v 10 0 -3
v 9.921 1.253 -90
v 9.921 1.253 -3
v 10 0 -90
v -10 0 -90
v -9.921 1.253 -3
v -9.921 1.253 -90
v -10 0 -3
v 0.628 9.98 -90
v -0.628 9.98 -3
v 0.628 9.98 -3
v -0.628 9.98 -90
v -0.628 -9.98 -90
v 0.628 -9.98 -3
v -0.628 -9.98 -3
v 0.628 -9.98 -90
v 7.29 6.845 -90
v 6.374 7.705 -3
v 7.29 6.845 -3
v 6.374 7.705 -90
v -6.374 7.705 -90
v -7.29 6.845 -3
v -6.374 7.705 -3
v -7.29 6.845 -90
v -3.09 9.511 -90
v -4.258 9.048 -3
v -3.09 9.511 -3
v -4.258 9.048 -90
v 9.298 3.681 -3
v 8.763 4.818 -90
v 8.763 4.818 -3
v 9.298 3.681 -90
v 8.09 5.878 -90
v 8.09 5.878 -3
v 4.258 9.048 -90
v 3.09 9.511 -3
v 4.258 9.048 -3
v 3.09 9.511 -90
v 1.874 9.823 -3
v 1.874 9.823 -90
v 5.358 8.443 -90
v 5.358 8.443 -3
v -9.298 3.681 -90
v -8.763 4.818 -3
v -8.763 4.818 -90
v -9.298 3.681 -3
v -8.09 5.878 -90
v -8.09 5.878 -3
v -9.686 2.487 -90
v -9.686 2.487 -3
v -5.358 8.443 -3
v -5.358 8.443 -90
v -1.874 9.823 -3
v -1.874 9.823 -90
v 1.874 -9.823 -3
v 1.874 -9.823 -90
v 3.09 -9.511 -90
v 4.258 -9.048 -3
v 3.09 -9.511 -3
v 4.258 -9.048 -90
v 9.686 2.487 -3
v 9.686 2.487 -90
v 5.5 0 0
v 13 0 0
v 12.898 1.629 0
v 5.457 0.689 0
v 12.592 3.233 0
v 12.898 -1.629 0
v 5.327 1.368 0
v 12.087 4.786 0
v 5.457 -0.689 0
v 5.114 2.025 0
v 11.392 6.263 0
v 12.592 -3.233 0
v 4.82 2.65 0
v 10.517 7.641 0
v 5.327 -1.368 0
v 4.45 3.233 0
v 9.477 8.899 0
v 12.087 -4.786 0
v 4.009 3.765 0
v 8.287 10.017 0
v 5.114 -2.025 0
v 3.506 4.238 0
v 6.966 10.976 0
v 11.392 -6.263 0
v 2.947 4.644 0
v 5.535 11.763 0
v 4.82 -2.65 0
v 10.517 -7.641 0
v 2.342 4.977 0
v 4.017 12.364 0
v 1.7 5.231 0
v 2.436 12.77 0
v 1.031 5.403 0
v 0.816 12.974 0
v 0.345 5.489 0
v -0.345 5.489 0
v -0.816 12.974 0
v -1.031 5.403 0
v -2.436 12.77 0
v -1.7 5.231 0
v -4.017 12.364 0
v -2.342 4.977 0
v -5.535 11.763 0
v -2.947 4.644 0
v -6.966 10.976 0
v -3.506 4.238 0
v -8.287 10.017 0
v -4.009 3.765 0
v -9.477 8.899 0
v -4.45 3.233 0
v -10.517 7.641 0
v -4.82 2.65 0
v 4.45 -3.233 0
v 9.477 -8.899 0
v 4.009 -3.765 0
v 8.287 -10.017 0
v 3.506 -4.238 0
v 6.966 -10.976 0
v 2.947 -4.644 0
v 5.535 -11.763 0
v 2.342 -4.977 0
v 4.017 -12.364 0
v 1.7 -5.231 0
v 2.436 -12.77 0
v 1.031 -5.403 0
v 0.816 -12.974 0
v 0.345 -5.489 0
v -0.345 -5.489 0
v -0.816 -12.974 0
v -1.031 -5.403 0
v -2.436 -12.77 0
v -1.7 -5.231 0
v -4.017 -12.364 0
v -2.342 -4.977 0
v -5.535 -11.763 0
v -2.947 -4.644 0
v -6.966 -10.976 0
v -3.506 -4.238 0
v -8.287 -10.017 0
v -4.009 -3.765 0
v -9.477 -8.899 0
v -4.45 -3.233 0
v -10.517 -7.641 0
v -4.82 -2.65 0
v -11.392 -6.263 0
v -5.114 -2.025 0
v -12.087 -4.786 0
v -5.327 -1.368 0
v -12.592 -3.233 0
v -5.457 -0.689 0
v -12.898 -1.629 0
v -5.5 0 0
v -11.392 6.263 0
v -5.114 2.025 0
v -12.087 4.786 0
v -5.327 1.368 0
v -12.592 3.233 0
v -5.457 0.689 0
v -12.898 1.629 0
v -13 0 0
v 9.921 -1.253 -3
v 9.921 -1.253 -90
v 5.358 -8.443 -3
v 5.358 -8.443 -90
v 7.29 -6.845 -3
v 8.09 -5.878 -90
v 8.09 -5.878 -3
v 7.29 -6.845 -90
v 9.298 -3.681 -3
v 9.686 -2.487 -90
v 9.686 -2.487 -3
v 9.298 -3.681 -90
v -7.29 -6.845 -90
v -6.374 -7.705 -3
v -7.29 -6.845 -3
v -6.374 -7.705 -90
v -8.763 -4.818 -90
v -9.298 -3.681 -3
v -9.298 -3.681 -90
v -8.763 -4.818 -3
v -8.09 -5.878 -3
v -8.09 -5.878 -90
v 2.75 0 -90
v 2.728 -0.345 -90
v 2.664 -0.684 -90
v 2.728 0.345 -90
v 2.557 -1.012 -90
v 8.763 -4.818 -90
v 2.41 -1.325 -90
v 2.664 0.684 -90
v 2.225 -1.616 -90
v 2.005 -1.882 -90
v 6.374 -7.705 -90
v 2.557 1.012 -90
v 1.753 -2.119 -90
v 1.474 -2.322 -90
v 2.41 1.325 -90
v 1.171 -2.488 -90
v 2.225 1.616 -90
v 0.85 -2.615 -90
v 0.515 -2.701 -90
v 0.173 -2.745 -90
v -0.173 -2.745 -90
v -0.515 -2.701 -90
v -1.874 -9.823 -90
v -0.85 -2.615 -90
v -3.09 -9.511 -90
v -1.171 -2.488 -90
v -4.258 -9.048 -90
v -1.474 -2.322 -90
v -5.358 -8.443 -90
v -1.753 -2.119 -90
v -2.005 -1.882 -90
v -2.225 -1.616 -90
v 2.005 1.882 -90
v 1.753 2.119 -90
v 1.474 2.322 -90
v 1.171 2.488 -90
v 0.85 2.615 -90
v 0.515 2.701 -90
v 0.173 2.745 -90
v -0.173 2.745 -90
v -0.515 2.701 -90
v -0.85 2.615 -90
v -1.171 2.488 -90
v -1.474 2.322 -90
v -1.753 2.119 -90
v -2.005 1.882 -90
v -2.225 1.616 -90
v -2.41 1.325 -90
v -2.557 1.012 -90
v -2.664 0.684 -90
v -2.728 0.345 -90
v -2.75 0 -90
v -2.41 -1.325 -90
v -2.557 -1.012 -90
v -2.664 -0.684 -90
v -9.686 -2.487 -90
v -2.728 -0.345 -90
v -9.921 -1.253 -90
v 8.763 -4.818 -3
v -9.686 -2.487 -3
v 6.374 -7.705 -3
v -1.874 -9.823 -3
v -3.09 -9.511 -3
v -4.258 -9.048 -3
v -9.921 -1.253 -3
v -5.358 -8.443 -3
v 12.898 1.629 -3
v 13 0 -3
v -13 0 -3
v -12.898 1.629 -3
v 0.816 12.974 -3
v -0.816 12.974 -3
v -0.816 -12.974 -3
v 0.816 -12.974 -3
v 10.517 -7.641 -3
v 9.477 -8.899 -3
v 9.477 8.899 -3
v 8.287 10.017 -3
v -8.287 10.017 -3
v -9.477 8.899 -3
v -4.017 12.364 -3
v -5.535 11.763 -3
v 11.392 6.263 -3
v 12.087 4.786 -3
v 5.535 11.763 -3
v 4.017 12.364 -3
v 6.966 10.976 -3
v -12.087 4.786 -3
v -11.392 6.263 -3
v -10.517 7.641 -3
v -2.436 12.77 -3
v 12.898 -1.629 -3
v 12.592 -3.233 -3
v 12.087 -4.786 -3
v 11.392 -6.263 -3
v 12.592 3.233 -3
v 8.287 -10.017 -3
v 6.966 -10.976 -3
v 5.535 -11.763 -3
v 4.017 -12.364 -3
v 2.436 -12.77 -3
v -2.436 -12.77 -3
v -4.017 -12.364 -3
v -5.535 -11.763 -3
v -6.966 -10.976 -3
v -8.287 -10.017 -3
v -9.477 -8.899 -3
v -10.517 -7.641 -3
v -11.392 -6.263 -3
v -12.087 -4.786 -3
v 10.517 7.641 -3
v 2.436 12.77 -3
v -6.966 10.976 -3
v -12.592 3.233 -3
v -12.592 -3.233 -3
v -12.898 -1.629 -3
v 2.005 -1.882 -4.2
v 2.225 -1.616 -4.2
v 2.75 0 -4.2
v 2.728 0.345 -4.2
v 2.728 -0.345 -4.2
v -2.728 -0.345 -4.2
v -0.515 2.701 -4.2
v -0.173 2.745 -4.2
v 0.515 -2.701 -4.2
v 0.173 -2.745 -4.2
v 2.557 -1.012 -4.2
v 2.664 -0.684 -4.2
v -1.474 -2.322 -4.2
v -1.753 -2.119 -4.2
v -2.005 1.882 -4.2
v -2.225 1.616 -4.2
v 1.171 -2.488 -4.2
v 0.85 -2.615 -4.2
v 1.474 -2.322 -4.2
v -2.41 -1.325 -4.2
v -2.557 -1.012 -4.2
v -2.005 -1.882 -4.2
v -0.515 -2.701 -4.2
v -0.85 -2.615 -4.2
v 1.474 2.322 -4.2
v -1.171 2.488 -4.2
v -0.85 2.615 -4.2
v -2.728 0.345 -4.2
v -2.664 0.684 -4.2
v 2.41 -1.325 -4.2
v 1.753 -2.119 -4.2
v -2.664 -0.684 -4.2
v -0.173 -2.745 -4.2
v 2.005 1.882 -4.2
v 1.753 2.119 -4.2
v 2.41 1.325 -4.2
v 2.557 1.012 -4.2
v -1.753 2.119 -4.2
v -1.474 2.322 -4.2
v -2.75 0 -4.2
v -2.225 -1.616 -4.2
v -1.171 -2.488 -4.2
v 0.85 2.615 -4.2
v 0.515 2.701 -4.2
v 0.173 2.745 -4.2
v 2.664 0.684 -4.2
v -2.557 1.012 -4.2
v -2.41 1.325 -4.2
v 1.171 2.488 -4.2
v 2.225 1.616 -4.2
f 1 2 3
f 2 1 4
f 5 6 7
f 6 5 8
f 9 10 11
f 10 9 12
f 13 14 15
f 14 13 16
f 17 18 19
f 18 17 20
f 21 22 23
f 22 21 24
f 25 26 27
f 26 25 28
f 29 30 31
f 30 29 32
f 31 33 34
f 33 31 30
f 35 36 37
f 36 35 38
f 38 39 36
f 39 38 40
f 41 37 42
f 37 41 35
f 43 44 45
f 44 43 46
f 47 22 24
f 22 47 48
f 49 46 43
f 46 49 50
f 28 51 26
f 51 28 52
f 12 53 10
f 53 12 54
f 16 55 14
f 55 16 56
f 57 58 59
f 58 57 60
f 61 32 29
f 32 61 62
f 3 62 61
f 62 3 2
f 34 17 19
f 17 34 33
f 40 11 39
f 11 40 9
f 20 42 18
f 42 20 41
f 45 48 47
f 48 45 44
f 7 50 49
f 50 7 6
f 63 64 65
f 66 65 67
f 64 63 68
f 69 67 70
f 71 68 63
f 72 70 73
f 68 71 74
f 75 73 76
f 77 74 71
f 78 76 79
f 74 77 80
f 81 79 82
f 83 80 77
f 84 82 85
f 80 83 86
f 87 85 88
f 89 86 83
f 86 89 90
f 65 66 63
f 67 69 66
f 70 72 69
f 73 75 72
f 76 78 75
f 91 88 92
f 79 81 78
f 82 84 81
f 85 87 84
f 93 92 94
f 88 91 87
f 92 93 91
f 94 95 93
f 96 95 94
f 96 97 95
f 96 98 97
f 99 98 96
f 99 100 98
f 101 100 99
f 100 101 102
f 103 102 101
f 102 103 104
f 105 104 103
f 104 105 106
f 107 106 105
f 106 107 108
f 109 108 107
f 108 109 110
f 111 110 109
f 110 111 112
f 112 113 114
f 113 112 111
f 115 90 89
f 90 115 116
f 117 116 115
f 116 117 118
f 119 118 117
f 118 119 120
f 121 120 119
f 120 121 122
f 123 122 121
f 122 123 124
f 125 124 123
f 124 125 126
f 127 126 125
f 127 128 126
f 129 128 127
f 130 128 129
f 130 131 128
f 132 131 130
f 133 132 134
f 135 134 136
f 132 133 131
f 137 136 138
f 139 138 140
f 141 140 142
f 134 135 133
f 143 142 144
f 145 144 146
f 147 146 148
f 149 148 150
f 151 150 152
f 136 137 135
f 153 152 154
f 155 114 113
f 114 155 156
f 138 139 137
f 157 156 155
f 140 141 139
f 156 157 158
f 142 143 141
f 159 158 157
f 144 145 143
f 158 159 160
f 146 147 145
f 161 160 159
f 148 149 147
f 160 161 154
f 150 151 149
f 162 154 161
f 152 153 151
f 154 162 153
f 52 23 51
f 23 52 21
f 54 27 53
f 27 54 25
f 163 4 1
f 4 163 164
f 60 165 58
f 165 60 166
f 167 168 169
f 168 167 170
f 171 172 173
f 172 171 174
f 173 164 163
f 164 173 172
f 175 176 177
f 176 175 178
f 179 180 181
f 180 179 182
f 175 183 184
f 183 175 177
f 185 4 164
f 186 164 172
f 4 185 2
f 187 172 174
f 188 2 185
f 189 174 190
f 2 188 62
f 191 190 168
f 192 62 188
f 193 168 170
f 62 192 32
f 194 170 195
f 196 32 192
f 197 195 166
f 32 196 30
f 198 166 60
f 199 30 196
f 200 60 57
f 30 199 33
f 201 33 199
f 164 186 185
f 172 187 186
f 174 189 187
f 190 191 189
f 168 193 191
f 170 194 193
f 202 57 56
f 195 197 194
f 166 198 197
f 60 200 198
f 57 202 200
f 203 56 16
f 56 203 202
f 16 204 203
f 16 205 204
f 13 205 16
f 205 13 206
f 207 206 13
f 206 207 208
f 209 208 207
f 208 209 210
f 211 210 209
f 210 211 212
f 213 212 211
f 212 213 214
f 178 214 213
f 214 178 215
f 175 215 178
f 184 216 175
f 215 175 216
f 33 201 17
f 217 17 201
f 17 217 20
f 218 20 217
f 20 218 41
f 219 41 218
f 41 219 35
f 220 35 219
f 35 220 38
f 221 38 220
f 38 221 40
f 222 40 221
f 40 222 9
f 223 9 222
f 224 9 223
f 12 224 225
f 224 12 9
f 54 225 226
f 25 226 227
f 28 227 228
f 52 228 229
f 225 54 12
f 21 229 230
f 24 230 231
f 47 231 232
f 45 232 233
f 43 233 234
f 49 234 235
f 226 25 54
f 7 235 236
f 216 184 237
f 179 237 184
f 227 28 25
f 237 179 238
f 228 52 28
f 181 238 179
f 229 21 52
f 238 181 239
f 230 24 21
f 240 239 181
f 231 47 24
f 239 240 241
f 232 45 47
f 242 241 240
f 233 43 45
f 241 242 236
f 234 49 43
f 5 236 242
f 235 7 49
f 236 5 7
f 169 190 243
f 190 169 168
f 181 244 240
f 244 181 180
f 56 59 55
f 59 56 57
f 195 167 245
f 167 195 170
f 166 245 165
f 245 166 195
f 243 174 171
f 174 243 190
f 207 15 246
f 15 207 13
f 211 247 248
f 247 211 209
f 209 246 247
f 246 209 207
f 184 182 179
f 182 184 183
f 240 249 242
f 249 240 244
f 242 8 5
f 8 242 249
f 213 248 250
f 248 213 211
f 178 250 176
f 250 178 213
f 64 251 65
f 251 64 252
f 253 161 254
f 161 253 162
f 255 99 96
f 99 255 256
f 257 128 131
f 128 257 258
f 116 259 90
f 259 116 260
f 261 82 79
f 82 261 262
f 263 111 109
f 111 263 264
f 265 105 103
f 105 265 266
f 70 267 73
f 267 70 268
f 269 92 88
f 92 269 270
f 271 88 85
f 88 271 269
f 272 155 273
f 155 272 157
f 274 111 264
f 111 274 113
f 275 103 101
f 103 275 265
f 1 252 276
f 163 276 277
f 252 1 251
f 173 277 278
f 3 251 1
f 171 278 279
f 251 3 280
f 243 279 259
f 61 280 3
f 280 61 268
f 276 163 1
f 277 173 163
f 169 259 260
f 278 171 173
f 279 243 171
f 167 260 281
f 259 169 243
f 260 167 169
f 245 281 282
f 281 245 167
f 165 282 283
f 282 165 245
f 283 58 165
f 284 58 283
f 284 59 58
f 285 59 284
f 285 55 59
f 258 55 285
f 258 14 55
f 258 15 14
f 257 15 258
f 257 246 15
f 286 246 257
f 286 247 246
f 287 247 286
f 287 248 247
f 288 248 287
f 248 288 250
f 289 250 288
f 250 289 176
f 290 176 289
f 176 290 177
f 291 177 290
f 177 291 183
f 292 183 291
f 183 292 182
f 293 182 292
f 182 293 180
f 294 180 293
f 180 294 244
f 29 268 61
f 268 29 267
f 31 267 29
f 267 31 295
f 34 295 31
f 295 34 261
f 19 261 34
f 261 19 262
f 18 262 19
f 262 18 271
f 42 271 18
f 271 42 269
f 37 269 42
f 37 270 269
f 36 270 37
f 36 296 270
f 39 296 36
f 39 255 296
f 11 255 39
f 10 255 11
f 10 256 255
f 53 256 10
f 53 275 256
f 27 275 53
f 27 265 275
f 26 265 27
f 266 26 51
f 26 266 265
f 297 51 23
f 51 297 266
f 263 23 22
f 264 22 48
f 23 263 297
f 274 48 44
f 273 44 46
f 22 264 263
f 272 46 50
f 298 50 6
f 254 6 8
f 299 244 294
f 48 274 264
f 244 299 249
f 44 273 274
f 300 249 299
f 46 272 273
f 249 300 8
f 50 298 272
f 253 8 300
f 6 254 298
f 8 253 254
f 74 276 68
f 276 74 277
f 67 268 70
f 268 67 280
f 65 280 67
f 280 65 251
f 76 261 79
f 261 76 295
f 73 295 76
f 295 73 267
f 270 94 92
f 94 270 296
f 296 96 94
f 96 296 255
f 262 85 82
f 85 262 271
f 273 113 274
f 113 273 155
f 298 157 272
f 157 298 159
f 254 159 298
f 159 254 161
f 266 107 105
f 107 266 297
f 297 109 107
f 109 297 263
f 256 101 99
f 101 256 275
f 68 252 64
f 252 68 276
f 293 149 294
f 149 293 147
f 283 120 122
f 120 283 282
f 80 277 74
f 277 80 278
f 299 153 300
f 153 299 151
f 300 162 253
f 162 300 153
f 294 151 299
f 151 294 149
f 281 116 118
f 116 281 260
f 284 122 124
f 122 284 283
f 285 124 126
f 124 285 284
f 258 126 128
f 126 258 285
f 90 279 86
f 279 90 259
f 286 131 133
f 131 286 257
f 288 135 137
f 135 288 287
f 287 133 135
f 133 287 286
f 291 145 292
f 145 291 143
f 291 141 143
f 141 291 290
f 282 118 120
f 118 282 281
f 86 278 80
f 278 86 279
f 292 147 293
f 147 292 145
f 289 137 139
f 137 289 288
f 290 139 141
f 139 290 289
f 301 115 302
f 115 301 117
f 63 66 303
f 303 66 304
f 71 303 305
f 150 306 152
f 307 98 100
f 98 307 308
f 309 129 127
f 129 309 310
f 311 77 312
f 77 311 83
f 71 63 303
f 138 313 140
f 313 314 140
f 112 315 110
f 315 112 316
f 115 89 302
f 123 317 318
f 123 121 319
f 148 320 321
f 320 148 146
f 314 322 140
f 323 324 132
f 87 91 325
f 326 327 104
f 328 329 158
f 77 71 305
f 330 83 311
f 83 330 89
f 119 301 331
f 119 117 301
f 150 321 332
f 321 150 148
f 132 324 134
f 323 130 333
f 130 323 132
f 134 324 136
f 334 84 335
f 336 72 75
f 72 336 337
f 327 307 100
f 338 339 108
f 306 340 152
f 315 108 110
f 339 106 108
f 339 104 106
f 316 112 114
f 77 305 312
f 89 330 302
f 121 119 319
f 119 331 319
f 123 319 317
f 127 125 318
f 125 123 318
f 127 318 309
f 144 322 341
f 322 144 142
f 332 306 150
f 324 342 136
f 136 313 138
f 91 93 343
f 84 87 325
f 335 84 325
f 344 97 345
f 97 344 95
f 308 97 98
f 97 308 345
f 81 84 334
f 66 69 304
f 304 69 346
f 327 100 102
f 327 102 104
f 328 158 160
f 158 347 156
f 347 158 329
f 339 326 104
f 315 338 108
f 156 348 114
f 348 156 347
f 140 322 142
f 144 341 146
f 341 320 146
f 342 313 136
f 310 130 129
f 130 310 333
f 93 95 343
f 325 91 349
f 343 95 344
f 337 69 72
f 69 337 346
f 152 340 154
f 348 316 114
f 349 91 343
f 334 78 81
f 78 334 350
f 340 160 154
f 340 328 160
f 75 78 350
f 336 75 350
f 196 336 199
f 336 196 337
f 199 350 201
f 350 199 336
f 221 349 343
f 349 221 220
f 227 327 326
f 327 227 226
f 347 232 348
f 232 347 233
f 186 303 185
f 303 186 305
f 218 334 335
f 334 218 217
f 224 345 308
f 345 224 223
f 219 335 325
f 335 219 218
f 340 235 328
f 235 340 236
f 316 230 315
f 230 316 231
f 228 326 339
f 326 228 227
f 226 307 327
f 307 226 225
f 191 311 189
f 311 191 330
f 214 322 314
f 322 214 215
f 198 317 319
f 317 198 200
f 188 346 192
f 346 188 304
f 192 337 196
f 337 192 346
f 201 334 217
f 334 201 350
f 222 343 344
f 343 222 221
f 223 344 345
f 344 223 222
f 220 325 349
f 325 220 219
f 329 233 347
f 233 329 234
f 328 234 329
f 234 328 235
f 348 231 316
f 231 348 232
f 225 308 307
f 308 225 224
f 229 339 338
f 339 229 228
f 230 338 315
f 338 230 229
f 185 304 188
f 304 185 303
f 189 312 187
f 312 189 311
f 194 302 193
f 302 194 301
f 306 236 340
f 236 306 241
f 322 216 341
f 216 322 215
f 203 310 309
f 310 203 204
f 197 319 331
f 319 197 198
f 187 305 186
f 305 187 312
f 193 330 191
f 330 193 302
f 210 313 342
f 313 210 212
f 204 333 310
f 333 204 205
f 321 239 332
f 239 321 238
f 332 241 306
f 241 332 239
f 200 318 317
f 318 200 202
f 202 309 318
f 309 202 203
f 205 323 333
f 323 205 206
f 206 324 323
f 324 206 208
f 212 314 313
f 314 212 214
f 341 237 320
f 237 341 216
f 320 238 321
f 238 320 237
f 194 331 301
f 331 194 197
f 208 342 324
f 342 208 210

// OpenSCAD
$fn = 50;


difference() {
	union() {
		translate(v = [0, 0, -90.0000000000]) {
			cylinder(h = 90, r = 10.0000000000);
		}
		translate(v = [0, 0, -3.0000000000]) {
			cylinder(h = 3, r = 13.0000000000);
		}
	}
	union() {
		translate(v = [0, 0, 0]) {
			rotate(a = [0, 0, 0]) {
				difference() {
					union() {
						#translate(v = [0, 0, -90.0000000000]) {
							cylinder(h = 90, r = 2.2500000000);
						}
						#translate(v = [0, 0, -4.2000000000]) {
							cylinder(h = 4.2000000000, r1 = 2.7500000000, r2 = 5.5000000000);
						}
						#translate(v = [0, 0, -90.0000000000]) {
							cylinder(h = 90, r = 2.7500000000);
						}
						#translate(v = [0, 0, -90.0000000000]) {
							cylinder(h = 90, r = 2.2500000000);
						}
					}
					union();
				}
			}
		}
	}
}
